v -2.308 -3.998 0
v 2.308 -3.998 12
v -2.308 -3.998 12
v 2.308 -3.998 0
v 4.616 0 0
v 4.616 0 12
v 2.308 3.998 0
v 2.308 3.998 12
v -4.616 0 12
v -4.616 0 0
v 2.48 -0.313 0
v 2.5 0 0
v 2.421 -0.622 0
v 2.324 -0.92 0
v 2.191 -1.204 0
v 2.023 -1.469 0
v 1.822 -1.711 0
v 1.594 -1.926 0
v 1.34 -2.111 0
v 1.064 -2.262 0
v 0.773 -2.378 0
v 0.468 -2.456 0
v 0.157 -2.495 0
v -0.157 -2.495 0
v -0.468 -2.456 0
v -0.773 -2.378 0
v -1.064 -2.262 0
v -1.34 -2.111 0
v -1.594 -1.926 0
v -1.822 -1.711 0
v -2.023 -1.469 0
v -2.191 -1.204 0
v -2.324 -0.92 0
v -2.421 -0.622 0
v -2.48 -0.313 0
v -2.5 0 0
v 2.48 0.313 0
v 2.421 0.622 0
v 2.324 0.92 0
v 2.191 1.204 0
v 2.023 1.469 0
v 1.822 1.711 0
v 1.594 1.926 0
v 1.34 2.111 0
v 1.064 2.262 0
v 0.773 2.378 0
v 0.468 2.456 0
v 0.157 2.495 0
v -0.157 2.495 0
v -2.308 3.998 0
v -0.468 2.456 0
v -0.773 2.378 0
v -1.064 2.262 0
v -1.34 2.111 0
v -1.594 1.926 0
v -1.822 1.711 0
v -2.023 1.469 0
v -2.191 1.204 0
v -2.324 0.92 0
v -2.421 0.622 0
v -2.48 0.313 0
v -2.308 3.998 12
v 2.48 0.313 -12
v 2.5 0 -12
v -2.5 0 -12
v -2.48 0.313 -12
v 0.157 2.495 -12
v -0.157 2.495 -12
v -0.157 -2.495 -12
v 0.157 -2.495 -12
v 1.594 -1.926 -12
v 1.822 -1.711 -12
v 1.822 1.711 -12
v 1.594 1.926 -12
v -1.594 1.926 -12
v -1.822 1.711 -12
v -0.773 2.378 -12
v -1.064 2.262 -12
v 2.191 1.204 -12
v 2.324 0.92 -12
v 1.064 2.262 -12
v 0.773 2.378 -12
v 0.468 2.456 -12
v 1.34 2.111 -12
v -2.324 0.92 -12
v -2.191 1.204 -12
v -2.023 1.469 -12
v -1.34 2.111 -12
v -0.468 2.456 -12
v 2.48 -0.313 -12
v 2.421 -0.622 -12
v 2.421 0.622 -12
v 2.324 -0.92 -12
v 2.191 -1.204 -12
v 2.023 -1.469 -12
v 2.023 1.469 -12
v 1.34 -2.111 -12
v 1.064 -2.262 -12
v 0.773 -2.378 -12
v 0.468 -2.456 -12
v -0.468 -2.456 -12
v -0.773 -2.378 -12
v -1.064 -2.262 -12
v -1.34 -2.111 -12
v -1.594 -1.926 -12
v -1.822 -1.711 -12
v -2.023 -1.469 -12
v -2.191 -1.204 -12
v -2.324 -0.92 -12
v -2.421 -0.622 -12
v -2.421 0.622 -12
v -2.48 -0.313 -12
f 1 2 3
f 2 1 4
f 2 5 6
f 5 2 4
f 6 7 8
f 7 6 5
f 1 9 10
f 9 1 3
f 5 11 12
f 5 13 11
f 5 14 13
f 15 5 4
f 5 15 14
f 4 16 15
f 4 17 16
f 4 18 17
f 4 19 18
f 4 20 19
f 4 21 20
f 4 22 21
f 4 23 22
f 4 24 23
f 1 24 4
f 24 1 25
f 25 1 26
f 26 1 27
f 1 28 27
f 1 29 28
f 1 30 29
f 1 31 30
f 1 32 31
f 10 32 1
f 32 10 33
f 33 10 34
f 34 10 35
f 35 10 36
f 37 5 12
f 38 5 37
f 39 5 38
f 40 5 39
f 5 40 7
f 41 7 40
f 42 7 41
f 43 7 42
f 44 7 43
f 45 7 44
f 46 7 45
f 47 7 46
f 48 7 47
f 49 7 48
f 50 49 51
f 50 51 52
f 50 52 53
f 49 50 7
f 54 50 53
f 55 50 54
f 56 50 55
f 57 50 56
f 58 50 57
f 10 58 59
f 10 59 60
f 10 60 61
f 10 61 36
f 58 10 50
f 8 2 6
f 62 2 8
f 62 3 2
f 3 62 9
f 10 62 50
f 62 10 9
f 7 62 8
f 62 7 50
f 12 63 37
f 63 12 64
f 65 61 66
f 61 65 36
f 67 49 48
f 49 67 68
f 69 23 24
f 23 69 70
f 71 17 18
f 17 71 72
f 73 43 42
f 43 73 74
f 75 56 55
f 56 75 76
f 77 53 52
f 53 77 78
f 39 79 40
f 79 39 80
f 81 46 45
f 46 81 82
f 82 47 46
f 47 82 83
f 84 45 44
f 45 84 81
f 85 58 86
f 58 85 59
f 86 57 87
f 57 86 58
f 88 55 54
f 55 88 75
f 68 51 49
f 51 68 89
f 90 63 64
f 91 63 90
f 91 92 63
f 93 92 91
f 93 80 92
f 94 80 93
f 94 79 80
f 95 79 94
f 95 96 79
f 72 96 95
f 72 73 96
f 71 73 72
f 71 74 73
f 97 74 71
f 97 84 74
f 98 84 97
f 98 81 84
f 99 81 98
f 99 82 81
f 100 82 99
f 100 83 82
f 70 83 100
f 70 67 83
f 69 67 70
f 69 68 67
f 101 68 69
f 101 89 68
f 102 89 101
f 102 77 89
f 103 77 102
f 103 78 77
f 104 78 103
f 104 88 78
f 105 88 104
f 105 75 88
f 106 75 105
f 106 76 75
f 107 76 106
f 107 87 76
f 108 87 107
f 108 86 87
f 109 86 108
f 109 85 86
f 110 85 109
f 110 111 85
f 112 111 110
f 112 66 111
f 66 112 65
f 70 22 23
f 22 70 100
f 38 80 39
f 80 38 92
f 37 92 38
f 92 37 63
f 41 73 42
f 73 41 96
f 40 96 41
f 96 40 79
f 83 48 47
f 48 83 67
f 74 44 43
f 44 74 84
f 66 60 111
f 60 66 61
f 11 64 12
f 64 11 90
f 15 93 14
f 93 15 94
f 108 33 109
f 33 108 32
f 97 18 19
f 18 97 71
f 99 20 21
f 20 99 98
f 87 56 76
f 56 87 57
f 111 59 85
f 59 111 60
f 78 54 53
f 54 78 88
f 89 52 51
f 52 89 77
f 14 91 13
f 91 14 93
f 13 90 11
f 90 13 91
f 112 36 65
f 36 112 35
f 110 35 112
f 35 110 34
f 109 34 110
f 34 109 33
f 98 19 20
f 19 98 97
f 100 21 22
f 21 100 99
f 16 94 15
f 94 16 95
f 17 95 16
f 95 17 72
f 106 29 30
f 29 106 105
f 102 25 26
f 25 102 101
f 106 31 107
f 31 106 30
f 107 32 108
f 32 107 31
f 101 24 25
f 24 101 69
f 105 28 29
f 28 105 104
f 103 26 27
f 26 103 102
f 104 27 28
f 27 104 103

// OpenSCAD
$fn = 50;


difference() {
	union() {
		linear_extrude(height = 12) {
			polygon(points = [[4.6160000000, 0.0000000000], [2.3080000000, 3.9975732639], [-2.3080000000, 3.9975732639], [-4.6160000000, 0.0000000000], [-2.3080000000, -3.9975732639], [2.3080000000, -3.9975732639]]);
		}
		translate(v = [0, 0, -12]) {
			cylinder(h = 12, r = 2.5000000000);
		}
	}
	union();
}
